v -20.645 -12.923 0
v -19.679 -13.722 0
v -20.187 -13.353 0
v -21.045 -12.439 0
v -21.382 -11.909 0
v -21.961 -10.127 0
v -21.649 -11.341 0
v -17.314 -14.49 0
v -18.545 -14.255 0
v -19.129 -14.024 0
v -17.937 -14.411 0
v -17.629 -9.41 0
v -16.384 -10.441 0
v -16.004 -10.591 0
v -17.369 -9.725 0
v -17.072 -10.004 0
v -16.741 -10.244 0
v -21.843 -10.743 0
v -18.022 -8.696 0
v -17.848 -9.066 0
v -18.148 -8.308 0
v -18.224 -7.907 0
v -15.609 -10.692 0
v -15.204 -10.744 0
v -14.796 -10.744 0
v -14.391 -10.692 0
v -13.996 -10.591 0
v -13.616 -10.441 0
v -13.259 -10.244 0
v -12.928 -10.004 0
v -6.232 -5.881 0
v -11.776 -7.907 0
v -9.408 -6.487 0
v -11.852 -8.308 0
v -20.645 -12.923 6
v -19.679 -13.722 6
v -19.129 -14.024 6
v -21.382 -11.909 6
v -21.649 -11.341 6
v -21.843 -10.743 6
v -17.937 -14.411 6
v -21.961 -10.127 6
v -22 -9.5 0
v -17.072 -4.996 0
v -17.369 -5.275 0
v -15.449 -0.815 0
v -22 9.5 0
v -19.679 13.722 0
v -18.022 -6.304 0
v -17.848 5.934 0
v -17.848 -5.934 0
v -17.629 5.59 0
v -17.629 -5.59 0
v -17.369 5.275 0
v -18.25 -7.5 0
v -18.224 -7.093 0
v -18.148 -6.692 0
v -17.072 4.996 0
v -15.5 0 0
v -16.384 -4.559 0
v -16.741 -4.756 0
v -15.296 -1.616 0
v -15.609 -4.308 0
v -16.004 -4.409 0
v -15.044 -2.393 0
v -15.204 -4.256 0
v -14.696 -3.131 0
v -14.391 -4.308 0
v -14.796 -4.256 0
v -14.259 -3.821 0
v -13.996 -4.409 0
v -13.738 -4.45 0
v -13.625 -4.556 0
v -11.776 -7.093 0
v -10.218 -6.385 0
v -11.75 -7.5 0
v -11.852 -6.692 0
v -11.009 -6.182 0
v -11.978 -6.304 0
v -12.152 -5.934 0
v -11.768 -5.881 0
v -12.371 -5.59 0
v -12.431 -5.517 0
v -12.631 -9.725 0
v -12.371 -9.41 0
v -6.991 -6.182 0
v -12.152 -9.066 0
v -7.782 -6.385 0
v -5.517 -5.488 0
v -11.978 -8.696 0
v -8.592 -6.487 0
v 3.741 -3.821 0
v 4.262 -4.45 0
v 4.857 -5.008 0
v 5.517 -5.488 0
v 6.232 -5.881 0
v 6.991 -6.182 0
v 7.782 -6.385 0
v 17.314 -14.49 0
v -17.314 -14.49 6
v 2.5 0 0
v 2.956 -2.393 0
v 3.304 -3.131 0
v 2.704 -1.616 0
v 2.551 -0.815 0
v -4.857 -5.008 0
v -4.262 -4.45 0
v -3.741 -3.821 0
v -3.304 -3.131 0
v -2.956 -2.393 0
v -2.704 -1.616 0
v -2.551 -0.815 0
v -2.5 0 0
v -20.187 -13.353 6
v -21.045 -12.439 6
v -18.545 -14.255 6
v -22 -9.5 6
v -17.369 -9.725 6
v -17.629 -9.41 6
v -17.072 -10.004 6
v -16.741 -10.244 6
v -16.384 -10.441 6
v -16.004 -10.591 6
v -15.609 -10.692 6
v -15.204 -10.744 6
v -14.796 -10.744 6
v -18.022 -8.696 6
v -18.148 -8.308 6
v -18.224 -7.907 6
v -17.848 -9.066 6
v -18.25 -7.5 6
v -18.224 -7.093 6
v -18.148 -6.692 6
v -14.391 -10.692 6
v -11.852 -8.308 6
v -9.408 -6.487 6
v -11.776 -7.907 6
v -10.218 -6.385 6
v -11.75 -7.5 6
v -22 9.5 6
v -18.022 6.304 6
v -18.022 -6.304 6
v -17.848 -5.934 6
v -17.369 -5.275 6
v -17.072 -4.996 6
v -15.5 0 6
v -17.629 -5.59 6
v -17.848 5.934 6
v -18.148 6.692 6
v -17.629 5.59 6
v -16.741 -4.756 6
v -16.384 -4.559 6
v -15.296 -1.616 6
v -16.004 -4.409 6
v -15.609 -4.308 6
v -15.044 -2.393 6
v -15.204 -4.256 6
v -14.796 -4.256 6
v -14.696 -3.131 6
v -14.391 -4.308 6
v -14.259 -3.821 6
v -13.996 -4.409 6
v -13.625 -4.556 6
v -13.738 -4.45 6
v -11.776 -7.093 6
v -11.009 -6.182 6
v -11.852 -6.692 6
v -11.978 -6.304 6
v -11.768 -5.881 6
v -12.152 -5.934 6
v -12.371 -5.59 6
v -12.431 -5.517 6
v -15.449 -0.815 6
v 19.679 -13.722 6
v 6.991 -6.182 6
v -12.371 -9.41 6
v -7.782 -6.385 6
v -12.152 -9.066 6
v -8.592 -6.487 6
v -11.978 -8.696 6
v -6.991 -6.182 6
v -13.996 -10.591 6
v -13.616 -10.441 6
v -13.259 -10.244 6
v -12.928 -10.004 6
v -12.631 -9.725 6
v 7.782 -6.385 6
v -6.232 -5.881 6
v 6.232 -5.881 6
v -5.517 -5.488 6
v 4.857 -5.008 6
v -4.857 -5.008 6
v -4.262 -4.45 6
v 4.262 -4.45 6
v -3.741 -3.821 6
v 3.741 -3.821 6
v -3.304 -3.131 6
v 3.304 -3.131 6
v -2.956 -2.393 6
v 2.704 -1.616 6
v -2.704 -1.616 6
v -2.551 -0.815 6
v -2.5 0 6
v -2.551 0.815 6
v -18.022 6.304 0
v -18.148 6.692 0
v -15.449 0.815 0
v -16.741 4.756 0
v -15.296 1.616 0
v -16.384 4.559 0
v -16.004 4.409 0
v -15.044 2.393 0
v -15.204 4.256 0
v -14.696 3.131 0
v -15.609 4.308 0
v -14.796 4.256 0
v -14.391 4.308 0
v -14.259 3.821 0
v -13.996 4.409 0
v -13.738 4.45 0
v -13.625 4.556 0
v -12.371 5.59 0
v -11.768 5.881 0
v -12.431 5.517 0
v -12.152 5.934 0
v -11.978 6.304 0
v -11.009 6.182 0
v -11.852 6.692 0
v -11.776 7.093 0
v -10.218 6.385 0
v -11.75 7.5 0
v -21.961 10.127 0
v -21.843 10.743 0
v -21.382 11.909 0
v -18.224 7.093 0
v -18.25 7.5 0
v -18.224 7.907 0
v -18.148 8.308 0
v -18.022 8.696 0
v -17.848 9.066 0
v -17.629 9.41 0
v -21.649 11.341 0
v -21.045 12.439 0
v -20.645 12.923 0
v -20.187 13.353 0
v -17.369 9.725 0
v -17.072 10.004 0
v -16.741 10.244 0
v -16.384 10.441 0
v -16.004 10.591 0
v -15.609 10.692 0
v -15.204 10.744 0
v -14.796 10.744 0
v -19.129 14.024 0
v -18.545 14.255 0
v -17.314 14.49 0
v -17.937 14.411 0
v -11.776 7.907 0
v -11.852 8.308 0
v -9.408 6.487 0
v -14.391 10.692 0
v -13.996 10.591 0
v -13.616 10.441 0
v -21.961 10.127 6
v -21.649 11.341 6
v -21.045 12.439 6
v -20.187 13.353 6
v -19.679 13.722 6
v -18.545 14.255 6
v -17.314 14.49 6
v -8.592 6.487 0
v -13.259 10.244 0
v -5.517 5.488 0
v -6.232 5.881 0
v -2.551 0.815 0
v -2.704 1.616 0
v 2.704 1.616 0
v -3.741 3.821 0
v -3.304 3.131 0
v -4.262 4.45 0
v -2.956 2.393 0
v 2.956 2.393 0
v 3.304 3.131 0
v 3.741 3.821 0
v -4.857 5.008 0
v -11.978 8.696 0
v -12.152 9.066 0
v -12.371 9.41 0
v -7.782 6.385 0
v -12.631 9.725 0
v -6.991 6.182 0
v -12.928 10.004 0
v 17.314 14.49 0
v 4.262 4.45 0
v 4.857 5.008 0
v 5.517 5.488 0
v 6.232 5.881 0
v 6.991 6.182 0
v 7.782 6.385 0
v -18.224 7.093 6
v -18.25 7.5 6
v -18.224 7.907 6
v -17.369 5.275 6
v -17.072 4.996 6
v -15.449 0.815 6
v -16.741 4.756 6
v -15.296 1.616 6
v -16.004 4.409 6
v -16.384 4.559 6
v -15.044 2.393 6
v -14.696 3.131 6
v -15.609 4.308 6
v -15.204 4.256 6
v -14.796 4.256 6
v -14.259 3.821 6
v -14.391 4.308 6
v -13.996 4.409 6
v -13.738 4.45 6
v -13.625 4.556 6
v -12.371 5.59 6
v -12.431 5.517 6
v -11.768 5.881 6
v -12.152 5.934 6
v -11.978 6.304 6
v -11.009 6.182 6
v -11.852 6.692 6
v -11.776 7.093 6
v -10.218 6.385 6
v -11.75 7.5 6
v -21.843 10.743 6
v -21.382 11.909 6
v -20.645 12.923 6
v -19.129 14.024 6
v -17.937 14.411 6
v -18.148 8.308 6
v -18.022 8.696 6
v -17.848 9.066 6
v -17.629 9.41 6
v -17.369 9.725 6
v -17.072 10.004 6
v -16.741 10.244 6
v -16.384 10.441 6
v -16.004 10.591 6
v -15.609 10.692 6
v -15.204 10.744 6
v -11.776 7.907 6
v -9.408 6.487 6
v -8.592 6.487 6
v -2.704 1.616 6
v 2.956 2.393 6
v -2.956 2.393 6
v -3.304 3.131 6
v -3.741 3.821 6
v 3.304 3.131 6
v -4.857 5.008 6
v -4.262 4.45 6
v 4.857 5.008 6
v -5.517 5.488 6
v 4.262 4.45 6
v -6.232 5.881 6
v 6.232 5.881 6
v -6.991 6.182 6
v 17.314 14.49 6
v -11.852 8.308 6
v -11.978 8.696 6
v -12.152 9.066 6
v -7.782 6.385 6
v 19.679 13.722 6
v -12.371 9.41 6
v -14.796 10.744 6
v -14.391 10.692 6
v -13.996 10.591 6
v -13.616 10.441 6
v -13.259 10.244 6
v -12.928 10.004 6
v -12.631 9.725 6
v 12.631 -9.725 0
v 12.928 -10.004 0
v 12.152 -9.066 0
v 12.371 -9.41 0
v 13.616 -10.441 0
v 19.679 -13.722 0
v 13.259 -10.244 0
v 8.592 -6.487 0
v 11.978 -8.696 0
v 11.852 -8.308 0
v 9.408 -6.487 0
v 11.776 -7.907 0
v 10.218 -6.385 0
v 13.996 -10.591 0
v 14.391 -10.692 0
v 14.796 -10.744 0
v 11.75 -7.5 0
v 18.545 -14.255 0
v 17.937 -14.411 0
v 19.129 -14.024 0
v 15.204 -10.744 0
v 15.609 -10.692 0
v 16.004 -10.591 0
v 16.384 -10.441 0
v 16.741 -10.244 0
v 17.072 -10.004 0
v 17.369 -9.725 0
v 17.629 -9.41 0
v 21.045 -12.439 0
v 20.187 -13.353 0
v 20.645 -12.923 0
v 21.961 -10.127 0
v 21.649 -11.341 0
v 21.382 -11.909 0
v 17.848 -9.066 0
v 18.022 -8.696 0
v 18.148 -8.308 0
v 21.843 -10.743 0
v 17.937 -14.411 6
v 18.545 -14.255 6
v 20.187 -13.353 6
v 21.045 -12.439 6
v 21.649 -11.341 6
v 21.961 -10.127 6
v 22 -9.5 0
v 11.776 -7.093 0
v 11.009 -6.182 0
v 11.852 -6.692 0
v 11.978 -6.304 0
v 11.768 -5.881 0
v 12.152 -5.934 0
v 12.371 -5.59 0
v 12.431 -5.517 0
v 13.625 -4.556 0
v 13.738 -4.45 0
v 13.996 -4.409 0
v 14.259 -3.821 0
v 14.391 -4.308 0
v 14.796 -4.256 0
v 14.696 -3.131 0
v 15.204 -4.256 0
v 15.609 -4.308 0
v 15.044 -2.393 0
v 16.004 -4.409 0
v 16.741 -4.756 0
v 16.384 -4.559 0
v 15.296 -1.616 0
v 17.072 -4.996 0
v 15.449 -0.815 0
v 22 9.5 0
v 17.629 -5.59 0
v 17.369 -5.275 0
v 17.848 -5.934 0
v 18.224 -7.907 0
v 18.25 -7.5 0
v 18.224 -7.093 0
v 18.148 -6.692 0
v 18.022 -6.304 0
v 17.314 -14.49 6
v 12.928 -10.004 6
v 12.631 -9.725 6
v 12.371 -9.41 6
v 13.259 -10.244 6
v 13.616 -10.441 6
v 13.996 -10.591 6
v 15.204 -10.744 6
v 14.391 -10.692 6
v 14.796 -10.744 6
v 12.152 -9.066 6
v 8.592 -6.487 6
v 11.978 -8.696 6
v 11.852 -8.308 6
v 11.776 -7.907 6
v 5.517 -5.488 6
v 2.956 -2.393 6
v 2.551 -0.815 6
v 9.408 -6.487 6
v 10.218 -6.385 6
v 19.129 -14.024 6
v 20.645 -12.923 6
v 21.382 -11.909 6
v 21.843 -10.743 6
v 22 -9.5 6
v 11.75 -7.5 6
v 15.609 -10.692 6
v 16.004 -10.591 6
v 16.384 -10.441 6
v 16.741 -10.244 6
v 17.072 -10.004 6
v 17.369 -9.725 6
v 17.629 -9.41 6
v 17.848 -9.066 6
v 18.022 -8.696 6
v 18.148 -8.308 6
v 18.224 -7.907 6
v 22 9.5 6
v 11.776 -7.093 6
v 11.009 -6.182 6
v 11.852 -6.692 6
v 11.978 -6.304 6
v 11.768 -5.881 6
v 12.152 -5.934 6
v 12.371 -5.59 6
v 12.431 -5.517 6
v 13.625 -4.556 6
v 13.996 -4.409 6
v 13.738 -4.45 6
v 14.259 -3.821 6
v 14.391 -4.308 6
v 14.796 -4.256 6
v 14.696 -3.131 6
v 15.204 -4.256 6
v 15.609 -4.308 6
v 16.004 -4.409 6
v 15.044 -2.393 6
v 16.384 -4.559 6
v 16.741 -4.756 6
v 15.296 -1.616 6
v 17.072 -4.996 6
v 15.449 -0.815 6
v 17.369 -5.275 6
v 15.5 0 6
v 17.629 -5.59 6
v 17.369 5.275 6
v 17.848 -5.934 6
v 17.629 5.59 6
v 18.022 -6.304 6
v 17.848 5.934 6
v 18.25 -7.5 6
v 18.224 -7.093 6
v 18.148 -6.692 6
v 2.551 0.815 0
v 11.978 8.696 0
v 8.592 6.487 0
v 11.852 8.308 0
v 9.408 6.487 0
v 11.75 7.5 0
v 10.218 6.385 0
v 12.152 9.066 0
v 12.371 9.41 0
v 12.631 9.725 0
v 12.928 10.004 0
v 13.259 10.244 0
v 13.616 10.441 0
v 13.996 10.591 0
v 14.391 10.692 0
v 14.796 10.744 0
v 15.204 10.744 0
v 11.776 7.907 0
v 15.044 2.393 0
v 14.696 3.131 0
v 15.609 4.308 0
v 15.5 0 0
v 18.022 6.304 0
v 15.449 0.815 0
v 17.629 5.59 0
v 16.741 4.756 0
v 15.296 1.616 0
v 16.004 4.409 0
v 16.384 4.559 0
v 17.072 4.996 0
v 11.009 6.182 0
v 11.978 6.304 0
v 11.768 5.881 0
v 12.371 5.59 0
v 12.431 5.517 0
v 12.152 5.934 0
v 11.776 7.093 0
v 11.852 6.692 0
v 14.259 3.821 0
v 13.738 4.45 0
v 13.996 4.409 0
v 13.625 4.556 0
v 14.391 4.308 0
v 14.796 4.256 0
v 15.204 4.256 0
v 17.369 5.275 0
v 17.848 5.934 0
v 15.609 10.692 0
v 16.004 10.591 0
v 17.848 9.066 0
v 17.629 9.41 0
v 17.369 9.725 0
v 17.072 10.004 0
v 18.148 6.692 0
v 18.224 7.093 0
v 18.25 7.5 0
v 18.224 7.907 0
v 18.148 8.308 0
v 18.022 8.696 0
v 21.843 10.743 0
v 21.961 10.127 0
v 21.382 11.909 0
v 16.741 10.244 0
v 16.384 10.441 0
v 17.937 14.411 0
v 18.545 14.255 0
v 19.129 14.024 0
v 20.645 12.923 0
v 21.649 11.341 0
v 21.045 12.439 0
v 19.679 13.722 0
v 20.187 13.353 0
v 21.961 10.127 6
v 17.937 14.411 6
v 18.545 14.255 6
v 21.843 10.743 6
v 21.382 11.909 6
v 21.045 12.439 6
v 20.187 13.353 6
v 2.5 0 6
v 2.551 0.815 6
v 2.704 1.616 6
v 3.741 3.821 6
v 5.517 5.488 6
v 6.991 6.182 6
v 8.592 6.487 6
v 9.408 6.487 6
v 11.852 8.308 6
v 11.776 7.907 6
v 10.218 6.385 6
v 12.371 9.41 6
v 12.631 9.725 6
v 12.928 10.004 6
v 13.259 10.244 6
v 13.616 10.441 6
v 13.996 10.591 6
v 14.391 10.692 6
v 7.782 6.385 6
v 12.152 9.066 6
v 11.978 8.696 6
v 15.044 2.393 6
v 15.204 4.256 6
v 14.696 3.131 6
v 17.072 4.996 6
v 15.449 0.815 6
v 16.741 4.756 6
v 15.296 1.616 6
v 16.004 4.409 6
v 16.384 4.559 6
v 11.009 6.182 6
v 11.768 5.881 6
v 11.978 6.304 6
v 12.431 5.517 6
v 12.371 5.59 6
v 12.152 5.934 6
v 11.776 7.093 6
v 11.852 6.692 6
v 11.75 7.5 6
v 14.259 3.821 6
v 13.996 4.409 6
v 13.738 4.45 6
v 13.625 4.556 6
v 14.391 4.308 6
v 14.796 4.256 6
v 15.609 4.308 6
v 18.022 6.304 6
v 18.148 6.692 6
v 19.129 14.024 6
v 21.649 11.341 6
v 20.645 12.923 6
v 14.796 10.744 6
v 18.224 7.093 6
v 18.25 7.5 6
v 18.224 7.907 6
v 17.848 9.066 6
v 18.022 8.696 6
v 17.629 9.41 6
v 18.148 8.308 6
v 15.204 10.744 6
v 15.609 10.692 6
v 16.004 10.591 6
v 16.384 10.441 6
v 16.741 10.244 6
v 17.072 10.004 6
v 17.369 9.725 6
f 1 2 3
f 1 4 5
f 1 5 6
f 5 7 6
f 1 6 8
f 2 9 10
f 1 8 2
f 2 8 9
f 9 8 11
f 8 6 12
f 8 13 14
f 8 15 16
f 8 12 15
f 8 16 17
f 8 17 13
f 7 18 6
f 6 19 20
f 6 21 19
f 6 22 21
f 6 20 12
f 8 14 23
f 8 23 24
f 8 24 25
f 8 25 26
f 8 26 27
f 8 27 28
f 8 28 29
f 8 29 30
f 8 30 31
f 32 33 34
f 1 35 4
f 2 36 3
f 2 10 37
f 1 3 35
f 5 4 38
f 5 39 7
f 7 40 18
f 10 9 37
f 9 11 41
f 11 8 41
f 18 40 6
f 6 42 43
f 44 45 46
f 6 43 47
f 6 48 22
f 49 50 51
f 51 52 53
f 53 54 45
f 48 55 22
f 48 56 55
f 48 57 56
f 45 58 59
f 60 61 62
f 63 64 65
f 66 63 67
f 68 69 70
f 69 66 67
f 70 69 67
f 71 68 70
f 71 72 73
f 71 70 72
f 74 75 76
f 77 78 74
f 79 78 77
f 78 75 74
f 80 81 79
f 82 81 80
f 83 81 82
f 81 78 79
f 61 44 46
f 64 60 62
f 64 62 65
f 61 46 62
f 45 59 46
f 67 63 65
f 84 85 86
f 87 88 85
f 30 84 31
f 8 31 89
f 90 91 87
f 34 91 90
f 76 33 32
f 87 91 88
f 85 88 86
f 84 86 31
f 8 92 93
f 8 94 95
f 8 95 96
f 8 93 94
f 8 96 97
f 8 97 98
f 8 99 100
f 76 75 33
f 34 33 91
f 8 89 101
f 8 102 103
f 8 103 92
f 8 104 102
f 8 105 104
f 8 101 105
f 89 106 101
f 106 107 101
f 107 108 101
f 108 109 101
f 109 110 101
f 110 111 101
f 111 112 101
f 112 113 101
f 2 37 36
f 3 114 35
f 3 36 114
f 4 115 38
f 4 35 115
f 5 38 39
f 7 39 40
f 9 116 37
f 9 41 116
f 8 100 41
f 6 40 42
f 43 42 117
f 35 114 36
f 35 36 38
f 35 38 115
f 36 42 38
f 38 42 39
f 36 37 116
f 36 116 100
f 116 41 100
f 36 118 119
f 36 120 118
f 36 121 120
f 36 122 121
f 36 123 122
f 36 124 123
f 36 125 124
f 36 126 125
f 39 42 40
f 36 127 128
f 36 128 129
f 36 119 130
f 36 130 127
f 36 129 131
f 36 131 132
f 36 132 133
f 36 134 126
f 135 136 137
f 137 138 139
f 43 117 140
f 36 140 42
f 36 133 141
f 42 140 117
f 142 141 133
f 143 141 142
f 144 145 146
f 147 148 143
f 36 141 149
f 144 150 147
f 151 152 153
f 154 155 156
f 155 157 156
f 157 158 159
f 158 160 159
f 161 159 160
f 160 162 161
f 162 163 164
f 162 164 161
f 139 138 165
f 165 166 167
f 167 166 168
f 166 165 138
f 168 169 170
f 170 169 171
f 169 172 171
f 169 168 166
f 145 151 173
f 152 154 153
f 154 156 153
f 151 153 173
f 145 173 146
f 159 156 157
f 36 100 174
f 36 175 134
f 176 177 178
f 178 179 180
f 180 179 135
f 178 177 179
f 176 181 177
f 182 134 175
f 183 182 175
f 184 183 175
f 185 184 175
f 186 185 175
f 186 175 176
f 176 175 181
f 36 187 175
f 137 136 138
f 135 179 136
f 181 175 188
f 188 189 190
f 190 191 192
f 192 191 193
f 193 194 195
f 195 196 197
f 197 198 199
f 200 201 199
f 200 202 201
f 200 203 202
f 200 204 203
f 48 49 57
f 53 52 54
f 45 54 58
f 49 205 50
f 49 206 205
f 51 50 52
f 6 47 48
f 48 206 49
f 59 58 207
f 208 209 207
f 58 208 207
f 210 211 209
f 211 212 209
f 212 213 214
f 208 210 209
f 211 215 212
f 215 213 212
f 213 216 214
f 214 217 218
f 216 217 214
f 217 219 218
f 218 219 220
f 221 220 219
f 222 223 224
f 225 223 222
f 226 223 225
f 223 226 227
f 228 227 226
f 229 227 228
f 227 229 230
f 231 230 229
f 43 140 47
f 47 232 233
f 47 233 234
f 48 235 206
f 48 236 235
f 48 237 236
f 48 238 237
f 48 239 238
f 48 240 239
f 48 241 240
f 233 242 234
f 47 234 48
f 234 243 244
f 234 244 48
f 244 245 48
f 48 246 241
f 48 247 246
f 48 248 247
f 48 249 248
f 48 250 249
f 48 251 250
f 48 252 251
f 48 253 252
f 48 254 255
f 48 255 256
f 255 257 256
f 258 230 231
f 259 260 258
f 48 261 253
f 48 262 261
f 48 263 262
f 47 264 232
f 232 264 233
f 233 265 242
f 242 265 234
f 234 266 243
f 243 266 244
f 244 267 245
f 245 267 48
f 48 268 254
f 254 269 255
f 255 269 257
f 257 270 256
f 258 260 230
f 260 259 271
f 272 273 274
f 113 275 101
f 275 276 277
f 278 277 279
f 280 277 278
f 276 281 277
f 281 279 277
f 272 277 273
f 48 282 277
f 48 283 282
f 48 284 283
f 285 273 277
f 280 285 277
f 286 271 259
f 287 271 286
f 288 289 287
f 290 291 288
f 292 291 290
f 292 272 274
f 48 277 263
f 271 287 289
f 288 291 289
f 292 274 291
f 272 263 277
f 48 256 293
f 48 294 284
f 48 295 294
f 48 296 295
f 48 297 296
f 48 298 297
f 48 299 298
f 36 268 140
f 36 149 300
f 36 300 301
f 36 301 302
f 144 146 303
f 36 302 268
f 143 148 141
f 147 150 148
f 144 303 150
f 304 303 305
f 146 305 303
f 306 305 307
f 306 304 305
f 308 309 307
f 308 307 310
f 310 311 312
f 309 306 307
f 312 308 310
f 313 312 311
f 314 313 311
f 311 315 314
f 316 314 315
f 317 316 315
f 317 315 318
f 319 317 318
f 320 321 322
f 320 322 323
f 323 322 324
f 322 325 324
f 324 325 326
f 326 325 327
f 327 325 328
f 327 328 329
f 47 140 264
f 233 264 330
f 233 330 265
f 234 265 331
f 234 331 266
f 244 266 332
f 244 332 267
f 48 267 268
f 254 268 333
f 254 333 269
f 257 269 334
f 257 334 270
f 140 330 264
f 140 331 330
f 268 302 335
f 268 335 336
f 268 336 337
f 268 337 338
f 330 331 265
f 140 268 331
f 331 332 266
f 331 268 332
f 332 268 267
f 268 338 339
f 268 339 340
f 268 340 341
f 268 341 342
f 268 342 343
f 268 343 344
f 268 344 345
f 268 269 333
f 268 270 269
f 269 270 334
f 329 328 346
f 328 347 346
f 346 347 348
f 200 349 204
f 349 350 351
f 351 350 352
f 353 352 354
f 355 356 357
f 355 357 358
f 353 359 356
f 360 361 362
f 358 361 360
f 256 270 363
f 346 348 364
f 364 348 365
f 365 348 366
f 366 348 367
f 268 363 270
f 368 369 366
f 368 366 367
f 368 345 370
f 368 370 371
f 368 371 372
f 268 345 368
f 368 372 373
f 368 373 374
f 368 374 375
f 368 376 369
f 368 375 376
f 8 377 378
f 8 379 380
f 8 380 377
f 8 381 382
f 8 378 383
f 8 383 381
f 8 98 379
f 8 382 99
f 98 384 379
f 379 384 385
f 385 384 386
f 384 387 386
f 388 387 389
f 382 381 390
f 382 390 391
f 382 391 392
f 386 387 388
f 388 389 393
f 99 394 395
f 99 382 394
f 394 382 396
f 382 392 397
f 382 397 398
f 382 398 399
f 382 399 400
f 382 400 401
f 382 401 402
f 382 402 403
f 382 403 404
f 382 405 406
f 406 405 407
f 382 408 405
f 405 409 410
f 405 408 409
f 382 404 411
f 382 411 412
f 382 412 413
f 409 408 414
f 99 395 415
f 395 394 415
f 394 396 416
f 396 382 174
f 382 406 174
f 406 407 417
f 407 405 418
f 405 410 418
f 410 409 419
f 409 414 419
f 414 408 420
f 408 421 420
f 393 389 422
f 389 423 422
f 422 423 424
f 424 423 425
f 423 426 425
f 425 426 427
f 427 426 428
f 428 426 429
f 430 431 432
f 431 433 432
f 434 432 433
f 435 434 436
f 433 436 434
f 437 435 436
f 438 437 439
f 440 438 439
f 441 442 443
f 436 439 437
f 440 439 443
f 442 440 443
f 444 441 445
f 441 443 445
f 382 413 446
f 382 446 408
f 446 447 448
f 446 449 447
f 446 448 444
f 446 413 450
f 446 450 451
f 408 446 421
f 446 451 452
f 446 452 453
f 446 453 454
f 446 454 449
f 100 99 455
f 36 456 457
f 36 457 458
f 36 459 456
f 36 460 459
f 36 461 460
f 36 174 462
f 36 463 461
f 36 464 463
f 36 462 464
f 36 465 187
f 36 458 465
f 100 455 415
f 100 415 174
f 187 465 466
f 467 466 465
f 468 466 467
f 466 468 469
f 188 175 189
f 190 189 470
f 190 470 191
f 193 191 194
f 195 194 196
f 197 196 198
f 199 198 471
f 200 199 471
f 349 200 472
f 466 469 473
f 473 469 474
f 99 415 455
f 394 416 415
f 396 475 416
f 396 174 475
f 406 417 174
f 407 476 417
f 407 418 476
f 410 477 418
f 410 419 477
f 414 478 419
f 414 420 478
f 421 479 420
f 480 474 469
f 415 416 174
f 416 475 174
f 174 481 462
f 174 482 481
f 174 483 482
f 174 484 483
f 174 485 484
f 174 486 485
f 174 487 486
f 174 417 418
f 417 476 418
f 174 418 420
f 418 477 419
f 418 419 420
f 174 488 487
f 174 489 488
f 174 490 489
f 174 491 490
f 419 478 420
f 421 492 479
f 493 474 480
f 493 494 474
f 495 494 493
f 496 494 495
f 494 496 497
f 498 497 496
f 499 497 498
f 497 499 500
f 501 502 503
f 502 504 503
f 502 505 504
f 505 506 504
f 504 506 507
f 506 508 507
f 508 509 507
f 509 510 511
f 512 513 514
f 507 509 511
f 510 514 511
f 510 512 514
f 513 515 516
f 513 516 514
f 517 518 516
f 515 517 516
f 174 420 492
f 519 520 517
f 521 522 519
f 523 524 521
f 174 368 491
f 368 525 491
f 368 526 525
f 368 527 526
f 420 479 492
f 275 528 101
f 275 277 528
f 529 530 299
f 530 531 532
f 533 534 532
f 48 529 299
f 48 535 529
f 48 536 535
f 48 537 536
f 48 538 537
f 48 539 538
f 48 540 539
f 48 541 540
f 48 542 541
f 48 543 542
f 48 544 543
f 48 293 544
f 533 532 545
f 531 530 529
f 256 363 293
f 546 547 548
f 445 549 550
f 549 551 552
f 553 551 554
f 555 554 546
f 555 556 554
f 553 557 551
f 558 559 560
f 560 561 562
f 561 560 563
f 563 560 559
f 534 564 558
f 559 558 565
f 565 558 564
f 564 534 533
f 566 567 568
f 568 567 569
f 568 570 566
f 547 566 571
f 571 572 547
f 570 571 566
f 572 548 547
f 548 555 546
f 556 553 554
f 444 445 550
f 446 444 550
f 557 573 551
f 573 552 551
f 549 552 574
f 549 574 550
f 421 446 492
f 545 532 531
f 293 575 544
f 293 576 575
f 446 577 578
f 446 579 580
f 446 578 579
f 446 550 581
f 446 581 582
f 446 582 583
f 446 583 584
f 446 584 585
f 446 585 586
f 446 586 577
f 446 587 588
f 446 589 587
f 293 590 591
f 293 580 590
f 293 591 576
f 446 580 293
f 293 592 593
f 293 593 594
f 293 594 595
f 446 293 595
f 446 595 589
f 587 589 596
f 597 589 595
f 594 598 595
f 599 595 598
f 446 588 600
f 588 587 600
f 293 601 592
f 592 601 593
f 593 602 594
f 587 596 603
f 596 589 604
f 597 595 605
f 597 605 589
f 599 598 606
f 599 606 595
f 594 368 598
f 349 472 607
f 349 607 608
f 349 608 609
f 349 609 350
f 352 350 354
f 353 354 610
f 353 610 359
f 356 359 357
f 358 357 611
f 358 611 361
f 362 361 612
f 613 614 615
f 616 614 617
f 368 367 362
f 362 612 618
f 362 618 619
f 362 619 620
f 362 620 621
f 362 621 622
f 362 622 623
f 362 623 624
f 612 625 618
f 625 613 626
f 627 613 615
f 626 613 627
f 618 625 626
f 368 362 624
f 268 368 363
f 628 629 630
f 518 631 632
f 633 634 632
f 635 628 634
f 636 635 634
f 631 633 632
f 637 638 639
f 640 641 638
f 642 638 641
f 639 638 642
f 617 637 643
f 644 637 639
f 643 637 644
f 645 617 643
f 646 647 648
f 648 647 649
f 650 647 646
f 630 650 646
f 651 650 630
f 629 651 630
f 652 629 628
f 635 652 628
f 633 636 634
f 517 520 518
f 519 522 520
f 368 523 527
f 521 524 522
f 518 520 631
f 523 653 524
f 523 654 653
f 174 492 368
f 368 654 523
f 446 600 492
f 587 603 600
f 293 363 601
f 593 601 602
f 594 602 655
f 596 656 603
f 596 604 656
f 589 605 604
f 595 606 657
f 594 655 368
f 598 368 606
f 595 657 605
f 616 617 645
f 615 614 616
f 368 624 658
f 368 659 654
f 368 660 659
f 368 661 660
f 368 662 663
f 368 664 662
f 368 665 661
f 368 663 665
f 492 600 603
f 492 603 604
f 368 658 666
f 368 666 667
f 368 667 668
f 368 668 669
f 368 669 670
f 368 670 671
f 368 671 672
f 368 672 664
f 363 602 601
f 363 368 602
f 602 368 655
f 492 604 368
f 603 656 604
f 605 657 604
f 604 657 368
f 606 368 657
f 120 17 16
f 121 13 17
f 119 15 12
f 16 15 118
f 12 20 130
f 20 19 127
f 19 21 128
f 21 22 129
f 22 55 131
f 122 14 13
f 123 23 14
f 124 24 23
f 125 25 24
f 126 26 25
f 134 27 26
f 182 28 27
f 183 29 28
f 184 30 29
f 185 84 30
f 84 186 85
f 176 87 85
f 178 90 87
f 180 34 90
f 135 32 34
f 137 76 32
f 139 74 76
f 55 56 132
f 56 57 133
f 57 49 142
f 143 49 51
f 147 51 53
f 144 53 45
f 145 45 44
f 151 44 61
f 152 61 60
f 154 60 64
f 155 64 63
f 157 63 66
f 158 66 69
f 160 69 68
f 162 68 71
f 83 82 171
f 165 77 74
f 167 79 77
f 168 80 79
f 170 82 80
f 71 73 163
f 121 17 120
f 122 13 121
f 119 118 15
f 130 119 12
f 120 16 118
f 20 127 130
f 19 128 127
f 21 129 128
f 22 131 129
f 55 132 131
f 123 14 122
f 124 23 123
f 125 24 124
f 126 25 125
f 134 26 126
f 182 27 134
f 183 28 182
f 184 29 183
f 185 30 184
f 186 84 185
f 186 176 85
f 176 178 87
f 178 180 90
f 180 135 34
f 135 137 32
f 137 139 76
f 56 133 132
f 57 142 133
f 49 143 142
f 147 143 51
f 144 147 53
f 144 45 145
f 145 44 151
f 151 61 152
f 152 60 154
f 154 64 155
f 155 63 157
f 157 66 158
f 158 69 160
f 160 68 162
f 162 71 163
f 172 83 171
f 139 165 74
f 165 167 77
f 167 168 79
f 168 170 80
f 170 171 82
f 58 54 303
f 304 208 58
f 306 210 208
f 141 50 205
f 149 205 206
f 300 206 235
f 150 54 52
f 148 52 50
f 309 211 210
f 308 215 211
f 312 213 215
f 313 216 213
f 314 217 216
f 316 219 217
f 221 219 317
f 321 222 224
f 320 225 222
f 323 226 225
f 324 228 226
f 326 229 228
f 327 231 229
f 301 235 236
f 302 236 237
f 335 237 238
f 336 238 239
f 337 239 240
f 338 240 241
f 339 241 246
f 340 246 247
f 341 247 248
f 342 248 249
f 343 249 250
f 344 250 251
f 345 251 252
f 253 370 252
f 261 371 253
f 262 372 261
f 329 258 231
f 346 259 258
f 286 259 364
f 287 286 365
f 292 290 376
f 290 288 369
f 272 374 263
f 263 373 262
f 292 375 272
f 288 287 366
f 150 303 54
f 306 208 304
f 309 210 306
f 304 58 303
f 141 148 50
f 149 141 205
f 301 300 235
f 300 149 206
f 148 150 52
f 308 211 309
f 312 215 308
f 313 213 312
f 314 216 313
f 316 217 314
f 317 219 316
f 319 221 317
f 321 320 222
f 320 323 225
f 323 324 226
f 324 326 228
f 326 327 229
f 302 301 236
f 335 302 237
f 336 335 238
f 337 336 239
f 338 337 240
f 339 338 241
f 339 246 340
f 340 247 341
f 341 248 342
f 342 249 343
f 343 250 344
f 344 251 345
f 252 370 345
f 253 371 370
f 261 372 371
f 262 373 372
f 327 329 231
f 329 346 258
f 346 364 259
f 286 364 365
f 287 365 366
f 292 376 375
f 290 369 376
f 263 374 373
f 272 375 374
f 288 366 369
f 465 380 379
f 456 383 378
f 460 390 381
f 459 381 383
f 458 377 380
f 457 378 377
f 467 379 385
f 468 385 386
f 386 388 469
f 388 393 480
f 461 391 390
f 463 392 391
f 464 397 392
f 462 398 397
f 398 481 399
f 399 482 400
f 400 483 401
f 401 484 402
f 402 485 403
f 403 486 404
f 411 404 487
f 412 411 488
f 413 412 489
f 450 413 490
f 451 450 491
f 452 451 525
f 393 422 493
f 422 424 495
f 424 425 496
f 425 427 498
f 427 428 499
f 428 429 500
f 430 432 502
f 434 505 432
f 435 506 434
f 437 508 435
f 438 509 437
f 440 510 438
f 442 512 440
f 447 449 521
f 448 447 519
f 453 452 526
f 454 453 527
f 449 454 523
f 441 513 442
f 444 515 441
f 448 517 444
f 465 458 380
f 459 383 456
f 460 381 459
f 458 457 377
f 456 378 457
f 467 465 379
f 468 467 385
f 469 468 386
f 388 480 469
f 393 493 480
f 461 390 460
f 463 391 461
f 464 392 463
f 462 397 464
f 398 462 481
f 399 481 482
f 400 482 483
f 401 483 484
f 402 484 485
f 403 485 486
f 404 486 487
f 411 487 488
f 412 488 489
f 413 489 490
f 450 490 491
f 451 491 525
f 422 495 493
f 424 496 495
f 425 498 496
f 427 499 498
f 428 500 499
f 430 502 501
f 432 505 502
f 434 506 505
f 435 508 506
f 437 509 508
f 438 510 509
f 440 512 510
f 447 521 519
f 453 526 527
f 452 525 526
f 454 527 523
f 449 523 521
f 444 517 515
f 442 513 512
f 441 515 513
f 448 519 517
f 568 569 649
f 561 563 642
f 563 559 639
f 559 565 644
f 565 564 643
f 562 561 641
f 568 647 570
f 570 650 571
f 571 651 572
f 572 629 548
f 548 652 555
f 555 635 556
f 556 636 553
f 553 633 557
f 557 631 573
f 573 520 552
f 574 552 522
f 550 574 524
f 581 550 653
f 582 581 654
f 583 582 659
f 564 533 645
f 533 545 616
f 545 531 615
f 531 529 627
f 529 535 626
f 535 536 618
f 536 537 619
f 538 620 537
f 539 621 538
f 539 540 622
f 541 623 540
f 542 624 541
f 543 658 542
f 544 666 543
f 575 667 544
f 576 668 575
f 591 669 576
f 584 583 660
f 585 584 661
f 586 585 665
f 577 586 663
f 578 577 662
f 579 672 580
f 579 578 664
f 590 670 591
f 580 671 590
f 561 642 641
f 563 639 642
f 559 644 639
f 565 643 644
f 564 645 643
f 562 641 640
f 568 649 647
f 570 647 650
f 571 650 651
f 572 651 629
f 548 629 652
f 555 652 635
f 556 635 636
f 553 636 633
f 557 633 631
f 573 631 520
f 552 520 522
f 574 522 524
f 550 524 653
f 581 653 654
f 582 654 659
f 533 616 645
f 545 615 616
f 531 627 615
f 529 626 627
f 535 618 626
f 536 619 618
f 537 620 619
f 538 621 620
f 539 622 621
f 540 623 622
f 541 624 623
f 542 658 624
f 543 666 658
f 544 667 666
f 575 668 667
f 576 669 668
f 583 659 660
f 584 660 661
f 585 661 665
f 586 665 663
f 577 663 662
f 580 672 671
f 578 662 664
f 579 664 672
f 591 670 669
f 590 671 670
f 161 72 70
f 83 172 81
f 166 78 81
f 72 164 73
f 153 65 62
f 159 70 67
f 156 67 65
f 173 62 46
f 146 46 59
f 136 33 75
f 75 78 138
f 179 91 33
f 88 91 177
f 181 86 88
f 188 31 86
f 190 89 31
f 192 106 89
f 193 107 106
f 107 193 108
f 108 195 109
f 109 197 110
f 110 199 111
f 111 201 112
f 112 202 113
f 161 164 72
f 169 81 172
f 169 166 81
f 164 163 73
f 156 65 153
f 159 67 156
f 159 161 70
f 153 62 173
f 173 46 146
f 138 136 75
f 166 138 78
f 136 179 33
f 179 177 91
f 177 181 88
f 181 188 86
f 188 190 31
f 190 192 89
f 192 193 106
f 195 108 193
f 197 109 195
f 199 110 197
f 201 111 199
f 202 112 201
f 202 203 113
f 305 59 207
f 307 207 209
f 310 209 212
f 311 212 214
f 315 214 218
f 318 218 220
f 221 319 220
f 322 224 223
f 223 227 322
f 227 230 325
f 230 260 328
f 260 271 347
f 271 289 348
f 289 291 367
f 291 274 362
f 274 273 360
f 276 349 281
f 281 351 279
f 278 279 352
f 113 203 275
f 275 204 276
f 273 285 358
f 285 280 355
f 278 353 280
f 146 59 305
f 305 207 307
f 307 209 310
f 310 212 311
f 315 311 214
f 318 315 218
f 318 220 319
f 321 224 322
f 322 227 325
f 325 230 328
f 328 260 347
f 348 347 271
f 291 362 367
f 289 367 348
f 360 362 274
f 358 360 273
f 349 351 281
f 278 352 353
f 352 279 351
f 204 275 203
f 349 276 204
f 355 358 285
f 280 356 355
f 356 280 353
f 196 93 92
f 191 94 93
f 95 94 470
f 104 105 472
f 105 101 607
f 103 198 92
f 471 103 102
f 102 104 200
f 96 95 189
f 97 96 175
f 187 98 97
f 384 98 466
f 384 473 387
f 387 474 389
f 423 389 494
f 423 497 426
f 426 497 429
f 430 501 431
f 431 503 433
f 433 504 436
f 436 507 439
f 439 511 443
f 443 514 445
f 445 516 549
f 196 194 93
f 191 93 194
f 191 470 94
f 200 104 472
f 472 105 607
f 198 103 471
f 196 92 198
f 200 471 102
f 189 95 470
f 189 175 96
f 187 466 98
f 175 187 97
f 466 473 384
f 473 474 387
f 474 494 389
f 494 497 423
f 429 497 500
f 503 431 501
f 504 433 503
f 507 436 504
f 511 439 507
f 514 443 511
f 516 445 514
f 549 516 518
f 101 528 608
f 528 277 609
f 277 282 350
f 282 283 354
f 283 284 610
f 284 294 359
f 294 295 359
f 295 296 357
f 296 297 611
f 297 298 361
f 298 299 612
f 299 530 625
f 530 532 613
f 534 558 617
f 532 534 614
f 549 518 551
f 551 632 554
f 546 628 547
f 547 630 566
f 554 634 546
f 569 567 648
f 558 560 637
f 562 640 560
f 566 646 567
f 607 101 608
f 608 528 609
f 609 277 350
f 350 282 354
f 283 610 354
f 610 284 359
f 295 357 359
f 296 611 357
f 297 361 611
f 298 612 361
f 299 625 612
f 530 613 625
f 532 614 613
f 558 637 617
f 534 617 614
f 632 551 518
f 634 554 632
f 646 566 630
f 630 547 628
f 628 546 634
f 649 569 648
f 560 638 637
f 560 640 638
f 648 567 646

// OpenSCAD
$fn = 50;

difference() {
	union() {
		hull() {
			translate(v = [-17.0, 9.5, 0]) {
				cylinder(h = 6, r = 5);
			}
			translate(v = [17.0, 9.5, 0]) {
				cylinder(h = 6, r = 5);
			}
			translate(v = [-17.0, -9.5, 0]) {
				cylinder(h = 6, r = 5);
			}
			translate(v = [17.0, -9.5, 0]) {
				cylinder(h = 6, r = 5);
			}
		}
	}
	union() {
		translate(v = [-15.0, -7.5, -100.0]) {
			cylinder(h = 200, r = 3.25);
		}
		translate(v = [-15.0, 7.5, -100.0]) {
			cylinder(h = 200, r = 3.25);
		}
		translate(v = [15.0, -7.5, -100.0]) {
			cylinder(h = 200, r = 3.25);
		}
		translate(v = [15.0, 7.5, -100.0]) {
			cylinder(h = 200, r = 3.25);
		}
		translate(v = [-15.0, -7.5, -100.0]) {
			cylinder(h = 200, r = 1.8);
		}
		translate(v = [-15.0, 7.5, -100.0]) {
			cylinder(h = 200, r = 1.8);
		}
		translate(v = [15.0, -7.5, -100.0]) {
			cylinder(h = 200, r = 1.8);
		}
		translate(v = [15.0, 7.5, -100.0]) {
			cylinder(h = 200, r = 1.8);
		}
		translate(v = [-9.0, 0, 0.0]) {
			cylinder(h = 6, r = 6.5);
		}
		translate(v = [9.0, 0, 0.0]) {
			cylinder(h = 6, r = 6.5);
		}
	}
}
